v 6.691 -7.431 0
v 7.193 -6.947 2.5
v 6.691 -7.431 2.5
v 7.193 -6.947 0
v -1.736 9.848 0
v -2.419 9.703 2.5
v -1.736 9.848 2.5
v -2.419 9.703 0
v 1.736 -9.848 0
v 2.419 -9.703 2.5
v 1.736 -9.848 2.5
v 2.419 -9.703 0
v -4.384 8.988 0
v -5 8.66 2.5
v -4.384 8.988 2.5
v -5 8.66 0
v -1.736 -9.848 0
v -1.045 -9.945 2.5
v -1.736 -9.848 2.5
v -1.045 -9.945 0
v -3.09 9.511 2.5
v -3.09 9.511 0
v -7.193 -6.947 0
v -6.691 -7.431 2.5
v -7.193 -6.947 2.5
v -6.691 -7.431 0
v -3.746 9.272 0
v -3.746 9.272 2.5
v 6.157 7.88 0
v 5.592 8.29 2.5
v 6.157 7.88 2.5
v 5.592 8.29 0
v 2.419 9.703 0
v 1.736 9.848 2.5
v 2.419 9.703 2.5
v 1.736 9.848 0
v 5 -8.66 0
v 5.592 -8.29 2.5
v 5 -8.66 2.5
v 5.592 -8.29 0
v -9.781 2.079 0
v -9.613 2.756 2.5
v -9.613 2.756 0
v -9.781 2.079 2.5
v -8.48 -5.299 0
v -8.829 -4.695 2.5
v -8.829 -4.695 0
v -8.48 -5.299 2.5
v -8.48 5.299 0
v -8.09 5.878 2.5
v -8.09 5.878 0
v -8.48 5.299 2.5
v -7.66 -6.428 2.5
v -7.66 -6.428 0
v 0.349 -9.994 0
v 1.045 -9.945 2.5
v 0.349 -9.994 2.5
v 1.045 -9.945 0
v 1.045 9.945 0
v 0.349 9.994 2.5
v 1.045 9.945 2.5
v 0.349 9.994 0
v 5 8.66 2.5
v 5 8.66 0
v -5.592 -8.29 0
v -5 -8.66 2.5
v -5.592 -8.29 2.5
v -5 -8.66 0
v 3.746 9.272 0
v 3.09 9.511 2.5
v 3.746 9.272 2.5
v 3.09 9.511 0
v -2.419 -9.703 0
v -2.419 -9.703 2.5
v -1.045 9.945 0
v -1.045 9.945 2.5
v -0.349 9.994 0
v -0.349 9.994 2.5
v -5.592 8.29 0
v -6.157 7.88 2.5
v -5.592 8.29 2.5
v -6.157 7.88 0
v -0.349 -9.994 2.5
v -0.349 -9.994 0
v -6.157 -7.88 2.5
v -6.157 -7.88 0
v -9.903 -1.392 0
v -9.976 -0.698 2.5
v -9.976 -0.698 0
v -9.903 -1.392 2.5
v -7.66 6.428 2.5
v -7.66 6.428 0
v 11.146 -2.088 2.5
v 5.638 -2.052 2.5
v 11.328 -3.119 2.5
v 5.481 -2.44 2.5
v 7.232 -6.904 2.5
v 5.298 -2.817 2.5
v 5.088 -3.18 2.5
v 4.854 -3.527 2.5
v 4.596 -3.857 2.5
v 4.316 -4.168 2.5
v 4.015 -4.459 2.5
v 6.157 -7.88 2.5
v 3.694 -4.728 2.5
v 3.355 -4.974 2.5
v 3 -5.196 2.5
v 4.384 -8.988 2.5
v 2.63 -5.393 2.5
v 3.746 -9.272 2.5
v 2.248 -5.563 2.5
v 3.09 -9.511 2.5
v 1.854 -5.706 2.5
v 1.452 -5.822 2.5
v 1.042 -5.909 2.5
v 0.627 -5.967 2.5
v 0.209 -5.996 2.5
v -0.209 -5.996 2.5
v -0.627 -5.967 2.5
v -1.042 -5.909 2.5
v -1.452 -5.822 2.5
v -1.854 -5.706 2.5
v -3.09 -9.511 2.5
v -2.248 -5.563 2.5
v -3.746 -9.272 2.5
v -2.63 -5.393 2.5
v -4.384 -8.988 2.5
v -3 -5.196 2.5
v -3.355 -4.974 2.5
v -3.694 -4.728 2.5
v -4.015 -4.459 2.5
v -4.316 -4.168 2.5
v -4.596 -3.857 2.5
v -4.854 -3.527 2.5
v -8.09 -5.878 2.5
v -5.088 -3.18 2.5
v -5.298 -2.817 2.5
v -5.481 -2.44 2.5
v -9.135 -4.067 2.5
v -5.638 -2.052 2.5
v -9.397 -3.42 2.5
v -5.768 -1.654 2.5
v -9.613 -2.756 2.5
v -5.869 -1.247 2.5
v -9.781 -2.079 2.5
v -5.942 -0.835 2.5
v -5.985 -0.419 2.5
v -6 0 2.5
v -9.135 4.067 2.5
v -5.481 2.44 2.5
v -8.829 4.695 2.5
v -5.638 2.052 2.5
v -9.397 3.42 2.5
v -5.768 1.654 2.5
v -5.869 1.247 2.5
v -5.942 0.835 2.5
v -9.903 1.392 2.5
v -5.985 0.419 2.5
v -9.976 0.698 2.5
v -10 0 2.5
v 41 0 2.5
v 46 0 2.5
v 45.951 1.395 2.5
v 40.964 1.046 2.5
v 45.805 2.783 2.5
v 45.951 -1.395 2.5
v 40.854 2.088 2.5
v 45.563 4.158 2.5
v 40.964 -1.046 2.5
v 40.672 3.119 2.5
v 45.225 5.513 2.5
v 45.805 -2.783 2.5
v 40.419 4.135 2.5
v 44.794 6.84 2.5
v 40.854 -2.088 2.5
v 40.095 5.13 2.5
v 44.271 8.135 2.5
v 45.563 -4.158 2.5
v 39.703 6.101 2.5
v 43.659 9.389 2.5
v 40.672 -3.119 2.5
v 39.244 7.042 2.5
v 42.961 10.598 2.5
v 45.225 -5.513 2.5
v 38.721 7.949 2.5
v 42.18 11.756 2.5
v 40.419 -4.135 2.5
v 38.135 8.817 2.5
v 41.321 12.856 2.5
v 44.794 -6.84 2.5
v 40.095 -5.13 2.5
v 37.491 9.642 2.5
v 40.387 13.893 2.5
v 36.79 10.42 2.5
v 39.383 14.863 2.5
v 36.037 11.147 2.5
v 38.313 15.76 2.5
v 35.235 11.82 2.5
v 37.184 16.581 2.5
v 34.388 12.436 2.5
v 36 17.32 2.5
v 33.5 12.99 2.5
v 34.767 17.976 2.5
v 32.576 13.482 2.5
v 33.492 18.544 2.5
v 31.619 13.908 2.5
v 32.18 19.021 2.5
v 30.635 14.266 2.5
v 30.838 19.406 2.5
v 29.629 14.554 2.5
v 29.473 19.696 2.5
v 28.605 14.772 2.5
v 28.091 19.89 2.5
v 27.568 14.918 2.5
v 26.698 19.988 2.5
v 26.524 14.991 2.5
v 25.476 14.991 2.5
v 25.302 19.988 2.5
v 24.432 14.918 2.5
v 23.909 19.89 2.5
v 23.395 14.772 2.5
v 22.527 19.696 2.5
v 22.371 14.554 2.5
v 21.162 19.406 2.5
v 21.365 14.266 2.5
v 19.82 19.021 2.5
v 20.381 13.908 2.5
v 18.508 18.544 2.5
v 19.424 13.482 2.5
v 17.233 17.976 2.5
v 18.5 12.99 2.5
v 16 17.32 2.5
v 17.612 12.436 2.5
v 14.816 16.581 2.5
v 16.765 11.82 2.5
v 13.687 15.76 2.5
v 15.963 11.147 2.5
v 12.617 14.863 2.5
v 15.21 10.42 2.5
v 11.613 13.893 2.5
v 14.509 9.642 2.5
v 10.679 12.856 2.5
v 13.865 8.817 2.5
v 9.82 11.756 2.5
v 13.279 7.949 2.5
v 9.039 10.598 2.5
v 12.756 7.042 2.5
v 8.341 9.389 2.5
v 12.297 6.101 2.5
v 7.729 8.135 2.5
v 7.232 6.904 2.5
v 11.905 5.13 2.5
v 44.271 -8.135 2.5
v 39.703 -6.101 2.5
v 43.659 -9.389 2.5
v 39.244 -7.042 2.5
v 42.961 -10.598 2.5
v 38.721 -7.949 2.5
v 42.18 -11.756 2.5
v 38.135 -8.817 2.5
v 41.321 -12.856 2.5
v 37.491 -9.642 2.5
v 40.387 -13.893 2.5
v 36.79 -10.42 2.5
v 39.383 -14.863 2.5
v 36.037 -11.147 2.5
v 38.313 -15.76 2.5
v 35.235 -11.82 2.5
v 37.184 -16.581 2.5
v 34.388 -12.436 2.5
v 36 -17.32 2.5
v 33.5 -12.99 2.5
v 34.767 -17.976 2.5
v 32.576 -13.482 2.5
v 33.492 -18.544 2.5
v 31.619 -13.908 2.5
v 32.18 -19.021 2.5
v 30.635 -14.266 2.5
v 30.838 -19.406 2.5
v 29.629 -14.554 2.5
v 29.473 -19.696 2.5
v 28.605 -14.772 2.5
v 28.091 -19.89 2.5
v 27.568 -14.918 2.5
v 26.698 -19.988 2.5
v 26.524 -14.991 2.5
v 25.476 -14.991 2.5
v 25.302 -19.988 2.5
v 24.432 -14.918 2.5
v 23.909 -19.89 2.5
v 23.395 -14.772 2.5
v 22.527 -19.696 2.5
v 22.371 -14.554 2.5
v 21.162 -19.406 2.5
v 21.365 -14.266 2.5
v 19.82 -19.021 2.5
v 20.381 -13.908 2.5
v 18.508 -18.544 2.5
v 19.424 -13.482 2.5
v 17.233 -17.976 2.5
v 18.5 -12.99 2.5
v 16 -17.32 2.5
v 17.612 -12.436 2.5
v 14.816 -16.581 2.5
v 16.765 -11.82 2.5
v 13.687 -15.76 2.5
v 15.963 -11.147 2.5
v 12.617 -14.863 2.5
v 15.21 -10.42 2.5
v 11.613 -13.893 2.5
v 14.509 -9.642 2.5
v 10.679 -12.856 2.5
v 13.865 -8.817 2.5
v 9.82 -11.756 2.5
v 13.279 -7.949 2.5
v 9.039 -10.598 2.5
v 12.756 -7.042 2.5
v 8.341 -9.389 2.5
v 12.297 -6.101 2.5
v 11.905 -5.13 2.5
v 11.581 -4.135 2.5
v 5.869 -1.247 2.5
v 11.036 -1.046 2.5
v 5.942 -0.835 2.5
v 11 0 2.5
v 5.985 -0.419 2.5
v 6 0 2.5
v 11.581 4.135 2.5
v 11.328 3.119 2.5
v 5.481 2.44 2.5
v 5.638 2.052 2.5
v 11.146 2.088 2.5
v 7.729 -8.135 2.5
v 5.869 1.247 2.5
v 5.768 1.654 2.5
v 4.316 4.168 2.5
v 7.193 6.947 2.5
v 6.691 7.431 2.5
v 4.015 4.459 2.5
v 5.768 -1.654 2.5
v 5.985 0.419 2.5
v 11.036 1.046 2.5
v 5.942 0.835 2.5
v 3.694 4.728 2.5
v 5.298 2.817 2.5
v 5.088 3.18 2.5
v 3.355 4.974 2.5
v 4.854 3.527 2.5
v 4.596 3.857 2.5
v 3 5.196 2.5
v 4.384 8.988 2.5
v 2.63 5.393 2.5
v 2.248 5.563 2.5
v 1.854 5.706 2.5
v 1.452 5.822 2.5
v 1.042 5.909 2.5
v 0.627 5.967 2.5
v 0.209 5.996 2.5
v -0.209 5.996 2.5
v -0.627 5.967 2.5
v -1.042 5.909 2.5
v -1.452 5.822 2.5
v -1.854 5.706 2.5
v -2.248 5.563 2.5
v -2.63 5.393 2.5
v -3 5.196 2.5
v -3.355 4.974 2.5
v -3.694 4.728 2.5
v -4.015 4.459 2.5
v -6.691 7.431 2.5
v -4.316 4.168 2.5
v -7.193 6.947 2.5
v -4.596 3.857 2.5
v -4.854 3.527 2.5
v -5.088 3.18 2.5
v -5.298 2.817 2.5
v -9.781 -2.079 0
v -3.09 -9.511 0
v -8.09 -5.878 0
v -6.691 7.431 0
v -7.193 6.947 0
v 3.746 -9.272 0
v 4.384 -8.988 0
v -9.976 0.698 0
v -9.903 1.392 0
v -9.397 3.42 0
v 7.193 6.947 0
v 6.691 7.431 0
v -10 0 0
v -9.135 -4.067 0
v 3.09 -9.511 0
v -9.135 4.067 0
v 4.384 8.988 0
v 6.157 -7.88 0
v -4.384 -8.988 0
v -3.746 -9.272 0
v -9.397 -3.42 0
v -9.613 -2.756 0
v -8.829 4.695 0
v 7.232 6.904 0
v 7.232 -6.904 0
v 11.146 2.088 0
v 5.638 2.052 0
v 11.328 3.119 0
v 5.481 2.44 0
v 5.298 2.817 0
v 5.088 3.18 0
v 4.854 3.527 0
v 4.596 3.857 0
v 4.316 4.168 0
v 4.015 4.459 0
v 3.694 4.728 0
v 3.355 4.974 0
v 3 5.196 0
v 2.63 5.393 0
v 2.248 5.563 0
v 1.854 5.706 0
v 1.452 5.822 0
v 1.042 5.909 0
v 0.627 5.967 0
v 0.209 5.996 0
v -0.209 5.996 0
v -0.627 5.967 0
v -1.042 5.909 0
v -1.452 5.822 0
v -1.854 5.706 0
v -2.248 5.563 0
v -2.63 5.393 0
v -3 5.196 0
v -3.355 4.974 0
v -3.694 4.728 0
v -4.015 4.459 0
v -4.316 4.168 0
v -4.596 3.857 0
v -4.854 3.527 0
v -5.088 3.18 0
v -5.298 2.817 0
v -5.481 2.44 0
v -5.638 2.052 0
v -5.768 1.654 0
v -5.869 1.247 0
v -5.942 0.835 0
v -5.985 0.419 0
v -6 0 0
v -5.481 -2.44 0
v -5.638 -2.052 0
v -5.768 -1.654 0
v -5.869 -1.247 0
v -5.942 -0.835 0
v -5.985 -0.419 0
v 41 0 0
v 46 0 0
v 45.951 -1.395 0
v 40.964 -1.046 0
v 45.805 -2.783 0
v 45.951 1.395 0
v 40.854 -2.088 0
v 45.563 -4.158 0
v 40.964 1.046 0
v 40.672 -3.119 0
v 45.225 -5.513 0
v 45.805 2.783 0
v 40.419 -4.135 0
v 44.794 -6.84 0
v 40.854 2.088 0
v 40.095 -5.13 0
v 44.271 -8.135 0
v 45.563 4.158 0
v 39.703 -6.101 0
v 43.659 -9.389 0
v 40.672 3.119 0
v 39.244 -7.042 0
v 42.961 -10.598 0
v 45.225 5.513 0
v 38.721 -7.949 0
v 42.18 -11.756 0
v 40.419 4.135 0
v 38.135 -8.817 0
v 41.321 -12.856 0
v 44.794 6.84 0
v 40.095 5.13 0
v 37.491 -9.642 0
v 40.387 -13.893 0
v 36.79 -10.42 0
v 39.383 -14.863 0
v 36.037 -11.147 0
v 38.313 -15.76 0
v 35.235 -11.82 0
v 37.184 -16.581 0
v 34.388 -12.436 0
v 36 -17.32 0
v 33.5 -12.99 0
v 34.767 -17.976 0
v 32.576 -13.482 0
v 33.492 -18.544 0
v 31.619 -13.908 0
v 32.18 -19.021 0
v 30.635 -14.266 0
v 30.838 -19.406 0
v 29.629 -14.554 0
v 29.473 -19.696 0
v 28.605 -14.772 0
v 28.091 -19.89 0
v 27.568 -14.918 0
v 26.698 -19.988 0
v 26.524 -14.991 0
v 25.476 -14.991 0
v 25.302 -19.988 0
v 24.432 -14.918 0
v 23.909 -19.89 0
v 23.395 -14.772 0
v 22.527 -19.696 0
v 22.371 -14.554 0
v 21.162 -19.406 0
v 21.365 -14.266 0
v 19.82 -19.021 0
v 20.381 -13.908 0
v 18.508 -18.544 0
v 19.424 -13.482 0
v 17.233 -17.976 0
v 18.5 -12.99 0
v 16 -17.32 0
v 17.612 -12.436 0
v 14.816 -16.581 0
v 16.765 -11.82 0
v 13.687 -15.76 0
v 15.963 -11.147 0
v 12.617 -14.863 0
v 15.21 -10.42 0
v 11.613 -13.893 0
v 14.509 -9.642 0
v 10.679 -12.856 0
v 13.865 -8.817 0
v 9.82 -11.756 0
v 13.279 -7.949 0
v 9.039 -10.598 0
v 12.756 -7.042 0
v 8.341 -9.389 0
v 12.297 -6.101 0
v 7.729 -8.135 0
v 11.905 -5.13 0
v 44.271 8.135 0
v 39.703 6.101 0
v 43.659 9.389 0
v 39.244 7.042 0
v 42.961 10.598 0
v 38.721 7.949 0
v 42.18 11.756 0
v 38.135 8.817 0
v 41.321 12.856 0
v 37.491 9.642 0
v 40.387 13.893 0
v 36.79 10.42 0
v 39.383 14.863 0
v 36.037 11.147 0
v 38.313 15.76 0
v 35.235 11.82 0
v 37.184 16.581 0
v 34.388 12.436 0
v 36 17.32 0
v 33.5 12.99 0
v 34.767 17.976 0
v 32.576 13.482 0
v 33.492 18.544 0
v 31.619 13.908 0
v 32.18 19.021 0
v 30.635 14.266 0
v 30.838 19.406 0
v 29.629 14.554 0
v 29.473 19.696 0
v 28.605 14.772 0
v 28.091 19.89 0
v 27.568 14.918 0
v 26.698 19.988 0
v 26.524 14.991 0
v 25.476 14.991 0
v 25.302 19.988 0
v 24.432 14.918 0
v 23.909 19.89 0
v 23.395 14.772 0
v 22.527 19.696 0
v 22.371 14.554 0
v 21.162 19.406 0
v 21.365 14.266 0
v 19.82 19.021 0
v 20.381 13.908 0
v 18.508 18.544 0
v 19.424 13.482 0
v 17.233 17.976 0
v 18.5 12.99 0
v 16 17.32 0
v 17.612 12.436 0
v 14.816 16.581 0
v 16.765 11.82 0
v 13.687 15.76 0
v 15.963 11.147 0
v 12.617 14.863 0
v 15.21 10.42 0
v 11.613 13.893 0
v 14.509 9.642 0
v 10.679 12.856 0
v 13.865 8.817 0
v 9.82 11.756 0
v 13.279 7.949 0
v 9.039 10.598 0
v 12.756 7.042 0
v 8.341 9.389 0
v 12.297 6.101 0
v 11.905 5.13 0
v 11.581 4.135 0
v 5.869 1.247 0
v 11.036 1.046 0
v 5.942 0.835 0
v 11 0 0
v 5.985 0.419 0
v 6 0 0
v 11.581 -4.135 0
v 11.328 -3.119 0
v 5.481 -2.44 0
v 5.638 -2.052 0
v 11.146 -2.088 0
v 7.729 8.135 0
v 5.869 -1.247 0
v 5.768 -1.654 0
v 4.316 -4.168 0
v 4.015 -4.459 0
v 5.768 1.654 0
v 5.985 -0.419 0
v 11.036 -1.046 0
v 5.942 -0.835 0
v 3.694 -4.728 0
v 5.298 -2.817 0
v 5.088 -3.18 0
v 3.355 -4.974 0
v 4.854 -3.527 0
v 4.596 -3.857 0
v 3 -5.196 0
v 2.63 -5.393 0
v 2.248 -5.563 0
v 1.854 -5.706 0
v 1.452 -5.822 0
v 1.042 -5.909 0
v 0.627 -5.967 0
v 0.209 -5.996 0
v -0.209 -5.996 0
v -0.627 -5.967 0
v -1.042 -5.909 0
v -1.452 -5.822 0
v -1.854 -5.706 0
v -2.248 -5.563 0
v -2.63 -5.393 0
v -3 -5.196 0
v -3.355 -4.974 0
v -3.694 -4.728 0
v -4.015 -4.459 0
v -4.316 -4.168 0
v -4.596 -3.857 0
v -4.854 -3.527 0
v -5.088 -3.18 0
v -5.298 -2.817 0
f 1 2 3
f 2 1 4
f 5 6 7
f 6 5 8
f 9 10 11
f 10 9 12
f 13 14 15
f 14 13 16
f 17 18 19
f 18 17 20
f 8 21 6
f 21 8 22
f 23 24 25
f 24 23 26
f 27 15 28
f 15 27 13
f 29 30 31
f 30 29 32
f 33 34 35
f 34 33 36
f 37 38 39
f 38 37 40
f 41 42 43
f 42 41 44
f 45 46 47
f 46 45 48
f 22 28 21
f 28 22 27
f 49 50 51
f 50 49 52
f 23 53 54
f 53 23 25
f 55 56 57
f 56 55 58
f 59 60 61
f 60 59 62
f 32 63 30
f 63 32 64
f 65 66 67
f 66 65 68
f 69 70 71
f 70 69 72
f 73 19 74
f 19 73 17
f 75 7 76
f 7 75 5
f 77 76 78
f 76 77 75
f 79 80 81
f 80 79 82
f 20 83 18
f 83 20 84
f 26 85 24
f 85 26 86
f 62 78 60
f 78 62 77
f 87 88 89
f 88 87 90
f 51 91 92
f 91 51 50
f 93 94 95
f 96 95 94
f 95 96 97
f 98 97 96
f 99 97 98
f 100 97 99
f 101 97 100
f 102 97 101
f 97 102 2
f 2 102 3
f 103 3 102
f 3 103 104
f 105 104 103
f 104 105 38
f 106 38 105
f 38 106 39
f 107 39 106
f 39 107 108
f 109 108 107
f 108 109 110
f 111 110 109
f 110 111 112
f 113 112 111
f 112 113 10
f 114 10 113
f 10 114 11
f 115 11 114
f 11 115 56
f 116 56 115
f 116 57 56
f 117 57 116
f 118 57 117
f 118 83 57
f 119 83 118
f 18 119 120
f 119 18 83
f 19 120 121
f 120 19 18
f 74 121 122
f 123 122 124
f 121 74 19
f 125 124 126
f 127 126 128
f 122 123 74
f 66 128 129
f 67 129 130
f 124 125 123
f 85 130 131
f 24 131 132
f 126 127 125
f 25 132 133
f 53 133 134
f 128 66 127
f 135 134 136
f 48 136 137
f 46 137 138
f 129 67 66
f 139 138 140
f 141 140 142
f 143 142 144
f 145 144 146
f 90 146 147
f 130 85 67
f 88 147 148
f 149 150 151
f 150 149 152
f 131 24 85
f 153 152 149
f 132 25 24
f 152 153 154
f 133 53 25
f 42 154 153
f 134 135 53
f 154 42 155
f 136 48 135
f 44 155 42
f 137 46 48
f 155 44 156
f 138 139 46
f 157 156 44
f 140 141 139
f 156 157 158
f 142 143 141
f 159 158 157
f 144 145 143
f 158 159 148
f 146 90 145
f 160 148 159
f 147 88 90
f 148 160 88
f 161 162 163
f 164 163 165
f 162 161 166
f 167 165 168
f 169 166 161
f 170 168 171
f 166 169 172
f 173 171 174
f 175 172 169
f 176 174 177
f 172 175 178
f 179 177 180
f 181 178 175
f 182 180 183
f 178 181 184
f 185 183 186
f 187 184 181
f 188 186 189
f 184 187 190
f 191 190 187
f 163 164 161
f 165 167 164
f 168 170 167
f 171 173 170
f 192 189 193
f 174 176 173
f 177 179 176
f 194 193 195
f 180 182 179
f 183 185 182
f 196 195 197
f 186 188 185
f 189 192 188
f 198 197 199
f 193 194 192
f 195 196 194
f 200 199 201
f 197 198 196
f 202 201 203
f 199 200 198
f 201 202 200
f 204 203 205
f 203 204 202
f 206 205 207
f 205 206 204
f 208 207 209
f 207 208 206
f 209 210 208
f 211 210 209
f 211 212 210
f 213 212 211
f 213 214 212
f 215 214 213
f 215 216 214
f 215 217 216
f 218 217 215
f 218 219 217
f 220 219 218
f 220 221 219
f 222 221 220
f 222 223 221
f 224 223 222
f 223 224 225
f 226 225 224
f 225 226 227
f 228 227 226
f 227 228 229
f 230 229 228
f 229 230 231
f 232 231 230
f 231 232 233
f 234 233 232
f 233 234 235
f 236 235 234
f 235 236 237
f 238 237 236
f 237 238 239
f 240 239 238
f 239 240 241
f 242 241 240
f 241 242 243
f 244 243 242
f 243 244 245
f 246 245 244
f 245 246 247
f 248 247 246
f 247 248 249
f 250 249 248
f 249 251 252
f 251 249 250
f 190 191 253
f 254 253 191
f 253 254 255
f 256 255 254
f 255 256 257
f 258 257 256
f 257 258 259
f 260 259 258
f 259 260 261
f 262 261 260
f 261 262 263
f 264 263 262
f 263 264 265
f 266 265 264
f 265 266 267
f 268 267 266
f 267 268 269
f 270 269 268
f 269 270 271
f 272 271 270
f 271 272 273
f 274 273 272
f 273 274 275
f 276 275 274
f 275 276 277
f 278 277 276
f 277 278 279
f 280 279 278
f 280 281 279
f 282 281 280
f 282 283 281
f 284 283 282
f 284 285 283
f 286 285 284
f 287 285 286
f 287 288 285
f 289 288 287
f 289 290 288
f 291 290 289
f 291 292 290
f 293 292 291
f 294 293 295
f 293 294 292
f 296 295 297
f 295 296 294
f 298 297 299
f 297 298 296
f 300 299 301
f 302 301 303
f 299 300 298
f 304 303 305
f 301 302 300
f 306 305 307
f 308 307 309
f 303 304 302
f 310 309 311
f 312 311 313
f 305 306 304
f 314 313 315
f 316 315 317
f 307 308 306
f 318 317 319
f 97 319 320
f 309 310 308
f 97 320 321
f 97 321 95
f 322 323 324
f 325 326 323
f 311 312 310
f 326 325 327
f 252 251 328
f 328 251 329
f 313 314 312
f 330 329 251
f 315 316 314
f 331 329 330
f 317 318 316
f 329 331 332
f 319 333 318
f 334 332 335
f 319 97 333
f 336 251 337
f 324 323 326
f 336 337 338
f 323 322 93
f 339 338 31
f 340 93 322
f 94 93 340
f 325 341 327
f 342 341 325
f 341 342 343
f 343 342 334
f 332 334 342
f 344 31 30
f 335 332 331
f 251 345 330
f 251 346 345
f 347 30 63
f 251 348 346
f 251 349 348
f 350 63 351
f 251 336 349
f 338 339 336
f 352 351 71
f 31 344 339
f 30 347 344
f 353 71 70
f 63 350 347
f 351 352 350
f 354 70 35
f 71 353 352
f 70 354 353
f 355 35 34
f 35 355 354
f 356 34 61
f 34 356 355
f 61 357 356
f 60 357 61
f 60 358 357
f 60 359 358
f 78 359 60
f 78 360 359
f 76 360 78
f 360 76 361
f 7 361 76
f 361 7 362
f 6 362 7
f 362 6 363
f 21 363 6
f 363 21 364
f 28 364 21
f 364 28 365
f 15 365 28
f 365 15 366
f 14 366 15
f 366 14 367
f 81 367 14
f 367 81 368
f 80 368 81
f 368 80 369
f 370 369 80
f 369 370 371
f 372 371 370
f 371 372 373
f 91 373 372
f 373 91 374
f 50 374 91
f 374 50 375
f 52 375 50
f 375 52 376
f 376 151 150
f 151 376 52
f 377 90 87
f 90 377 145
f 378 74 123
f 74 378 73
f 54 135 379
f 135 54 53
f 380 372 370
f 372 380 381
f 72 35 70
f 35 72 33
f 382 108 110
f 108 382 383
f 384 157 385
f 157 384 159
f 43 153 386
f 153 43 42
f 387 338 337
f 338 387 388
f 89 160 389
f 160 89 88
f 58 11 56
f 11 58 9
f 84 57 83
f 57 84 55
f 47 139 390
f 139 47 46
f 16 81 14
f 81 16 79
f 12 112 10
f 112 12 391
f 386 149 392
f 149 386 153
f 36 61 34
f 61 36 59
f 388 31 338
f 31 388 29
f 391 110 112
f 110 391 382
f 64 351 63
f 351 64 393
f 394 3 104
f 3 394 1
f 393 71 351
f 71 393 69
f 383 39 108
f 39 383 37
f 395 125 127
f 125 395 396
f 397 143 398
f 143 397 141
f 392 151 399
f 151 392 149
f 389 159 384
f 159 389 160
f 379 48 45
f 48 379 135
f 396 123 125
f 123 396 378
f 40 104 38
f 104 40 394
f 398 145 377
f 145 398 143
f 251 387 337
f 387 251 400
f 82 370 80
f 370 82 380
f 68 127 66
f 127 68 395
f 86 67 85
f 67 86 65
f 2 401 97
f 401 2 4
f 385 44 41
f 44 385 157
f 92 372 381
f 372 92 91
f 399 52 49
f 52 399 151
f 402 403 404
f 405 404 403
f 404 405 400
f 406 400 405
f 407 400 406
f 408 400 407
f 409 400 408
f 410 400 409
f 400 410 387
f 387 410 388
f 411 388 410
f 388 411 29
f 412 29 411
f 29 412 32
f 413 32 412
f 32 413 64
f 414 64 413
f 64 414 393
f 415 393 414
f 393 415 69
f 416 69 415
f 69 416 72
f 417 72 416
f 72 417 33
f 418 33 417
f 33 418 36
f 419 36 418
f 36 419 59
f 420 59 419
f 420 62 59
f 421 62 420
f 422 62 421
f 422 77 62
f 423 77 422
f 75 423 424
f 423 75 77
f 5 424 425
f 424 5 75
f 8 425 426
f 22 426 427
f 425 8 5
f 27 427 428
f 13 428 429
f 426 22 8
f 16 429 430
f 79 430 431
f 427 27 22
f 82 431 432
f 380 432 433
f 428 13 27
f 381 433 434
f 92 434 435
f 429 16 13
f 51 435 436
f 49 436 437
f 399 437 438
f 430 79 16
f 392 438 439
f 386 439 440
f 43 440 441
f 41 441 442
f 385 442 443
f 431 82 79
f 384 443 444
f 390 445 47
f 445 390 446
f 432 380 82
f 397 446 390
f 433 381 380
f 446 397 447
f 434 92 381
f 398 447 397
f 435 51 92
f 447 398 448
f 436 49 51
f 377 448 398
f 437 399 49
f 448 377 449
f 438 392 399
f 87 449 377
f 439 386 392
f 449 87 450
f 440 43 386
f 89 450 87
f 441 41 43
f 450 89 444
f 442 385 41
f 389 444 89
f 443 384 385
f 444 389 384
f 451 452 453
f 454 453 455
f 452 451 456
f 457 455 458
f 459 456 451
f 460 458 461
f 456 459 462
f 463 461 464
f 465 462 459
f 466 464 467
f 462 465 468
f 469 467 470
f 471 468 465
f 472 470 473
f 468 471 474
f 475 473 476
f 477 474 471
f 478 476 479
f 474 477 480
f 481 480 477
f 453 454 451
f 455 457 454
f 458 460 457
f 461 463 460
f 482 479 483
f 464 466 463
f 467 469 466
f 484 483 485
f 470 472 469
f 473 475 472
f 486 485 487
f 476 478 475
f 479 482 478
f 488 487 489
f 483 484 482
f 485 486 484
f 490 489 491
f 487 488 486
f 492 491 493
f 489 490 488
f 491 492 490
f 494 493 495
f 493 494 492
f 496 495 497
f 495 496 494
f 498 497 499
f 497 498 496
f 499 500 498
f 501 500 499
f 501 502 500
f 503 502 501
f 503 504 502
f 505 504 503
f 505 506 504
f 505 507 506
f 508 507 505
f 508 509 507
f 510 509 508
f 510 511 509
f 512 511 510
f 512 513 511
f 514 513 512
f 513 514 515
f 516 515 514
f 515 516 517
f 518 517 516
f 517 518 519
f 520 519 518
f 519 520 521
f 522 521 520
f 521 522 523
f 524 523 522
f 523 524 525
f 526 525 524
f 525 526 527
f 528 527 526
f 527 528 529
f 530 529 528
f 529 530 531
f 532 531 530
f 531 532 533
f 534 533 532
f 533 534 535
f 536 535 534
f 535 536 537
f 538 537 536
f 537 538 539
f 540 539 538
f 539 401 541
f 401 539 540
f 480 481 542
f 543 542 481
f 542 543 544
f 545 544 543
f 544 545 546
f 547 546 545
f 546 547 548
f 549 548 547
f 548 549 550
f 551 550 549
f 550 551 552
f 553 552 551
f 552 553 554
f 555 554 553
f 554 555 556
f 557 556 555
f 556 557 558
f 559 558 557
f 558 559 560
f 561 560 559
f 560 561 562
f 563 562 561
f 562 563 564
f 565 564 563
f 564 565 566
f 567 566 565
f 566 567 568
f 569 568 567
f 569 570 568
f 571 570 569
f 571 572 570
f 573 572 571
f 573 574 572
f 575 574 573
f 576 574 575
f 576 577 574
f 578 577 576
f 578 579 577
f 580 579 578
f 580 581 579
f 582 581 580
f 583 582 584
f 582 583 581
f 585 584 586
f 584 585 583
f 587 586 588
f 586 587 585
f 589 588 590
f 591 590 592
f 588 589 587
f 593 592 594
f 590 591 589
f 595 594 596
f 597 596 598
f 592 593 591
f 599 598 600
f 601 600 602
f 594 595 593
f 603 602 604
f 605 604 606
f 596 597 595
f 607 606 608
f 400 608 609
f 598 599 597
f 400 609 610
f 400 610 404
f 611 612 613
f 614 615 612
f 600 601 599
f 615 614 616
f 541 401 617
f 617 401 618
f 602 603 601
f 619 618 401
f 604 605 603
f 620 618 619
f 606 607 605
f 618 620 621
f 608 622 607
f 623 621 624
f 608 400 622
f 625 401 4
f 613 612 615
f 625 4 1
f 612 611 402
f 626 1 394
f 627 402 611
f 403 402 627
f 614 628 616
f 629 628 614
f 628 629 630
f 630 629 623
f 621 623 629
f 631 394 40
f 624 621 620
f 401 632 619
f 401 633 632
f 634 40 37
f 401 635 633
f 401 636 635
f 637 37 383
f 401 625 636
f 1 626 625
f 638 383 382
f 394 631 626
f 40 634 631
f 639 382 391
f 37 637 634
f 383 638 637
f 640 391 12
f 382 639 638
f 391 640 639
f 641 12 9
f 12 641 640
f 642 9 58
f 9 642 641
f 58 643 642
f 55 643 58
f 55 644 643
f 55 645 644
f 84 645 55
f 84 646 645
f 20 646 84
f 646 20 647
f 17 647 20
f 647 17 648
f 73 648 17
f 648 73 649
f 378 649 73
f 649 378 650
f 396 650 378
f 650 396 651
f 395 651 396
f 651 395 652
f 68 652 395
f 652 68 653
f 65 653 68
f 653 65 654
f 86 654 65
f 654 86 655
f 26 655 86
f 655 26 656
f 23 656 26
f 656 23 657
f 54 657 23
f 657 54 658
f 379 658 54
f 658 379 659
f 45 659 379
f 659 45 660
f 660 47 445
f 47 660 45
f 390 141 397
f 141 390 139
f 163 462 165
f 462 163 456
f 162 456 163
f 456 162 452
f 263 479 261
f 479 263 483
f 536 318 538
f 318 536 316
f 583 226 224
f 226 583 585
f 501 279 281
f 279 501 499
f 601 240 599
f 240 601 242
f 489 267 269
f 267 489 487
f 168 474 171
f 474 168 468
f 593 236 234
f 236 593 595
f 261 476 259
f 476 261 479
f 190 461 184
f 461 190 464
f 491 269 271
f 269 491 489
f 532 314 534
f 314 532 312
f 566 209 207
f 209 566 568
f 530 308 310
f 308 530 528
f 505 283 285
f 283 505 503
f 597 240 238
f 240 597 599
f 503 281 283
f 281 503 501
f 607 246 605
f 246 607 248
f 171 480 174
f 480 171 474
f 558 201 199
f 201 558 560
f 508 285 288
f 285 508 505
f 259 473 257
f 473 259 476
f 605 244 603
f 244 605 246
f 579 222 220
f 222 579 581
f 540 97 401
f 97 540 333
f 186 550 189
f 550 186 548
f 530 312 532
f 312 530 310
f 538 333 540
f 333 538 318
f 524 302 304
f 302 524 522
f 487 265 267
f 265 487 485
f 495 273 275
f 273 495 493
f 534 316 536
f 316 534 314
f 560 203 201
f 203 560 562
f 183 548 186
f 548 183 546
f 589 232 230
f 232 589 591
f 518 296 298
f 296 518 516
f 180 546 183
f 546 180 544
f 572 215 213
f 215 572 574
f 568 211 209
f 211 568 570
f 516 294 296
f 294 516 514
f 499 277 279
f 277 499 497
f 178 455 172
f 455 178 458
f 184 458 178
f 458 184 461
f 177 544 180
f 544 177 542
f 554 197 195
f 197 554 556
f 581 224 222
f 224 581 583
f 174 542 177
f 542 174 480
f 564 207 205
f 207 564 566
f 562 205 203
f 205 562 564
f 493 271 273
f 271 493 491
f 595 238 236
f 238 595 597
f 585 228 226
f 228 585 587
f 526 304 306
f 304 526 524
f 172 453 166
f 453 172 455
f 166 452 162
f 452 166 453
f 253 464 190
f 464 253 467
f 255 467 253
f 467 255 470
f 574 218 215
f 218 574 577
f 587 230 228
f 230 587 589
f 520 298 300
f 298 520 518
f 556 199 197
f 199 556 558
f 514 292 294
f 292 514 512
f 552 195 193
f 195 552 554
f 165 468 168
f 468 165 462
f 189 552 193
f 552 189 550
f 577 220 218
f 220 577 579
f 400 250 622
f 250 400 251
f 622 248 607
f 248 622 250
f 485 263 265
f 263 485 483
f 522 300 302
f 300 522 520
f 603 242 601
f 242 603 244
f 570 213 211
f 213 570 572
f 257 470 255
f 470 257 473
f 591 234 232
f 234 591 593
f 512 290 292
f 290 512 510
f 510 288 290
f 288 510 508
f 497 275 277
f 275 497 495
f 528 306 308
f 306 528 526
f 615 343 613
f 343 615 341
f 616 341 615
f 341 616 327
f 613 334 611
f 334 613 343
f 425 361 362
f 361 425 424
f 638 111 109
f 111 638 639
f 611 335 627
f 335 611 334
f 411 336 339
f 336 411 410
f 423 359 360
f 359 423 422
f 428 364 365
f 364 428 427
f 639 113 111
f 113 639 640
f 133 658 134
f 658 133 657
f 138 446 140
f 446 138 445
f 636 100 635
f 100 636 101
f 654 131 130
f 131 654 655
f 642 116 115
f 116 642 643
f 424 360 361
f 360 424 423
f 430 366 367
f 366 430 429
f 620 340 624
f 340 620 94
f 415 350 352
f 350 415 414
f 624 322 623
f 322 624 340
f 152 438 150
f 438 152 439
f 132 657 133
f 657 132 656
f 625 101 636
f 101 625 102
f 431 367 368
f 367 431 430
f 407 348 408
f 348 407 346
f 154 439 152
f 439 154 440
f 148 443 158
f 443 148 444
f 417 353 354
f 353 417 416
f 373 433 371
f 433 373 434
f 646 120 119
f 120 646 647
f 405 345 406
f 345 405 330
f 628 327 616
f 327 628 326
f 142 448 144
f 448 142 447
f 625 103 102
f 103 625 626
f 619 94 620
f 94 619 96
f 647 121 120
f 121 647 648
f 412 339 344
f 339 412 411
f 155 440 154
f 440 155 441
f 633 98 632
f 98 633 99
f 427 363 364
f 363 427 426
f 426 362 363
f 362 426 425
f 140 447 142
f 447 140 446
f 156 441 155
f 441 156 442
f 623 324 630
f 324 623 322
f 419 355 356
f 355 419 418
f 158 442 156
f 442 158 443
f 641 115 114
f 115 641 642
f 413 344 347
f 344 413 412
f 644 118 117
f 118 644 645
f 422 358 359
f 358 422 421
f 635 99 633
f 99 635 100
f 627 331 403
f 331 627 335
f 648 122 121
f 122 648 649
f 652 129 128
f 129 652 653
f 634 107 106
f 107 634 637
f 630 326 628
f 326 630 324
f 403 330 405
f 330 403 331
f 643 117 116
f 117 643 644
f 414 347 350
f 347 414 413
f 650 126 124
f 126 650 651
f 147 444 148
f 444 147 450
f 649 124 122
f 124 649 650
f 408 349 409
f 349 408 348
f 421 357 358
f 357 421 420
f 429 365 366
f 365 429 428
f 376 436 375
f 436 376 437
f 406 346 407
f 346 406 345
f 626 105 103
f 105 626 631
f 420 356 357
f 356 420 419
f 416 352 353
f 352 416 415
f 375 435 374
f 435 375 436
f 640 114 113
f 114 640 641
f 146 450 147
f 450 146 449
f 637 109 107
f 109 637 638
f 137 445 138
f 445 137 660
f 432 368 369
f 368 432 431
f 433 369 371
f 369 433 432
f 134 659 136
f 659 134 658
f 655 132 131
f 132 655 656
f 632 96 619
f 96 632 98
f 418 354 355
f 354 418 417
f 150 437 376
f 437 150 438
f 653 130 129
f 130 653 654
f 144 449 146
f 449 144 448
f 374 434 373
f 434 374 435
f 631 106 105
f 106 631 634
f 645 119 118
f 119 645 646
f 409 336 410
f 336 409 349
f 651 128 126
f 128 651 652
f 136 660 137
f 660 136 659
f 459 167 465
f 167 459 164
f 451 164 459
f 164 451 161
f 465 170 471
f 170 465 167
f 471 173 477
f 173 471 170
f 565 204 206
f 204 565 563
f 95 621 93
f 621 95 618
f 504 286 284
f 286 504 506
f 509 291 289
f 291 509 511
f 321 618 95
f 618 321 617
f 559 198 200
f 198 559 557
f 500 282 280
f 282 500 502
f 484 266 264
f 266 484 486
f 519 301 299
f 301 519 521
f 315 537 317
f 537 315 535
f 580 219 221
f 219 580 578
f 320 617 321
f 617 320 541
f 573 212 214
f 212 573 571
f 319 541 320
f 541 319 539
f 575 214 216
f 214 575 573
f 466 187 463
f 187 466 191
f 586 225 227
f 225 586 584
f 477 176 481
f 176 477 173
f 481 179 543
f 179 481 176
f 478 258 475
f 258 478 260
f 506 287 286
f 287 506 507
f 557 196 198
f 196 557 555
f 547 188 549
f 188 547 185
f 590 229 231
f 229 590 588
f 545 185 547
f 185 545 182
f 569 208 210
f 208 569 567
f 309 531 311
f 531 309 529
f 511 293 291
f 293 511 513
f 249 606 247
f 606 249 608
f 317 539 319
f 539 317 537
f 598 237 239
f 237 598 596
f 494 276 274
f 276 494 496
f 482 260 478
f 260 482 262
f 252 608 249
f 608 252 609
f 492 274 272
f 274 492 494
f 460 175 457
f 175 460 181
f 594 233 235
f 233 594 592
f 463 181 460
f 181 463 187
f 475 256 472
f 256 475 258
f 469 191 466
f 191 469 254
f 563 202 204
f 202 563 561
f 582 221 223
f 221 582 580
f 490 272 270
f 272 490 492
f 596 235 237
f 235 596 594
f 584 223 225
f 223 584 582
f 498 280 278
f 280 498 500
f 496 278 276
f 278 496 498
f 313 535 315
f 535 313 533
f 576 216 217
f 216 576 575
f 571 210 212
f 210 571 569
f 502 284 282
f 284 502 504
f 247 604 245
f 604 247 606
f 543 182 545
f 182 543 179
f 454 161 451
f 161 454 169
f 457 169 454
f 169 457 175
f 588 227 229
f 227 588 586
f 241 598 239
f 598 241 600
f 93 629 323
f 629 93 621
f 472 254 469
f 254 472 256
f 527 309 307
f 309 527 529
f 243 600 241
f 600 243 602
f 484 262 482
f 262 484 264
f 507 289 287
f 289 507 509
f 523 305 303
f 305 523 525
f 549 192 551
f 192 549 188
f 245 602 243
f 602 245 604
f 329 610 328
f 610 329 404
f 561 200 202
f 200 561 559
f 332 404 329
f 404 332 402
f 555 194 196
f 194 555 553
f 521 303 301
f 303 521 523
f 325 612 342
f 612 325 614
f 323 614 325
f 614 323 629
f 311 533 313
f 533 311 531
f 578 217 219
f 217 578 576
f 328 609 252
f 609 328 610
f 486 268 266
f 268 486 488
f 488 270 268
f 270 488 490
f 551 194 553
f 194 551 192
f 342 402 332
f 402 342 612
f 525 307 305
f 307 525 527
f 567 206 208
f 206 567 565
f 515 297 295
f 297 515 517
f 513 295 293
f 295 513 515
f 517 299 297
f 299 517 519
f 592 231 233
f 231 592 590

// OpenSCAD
$fa=4; // default minimum facet angle is now 0.5
$fs=0.05; // default minimum facet size is now 0.05 mm

difference() {
  union() {
    cylinder(h = 2.5, r = 10);
    translate([26, 0, 0]) cylinder(h = 2.5, r = 20);
  }

  translate([0, 0, -.1]) union() {
    cylinder(h = 2.7, r = 6);
    translate([26, 0, 0]) cylinder(h = 2.7, r = 15);
  }
}
